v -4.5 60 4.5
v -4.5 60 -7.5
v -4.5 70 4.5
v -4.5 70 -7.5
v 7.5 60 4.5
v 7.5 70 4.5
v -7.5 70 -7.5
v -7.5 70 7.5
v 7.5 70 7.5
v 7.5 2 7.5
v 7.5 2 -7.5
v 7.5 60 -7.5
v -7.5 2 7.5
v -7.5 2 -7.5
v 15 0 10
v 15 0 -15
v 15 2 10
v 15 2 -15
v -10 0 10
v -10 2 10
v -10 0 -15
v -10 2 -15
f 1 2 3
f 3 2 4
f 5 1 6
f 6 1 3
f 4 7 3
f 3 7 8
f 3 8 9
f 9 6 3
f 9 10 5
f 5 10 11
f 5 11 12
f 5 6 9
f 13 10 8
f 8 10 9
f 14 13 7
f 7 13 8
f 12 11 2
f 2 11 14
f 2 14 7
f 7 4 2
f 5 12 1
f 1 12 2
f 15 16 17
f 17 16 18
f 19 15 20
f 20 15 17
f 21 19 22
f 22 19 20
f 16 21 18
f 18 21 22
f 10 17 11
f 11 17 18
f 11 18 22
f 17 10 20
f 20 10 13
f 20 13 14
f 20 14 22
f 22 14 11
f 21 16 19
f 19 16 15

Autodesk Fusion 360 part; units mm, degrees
sketch "スケッチ1" plane through (0, 0, 0) normal (0, 1, 0) x (1, 0, 0)
  line L0 (10, -10) -> (-10, -10)
  line L1 (-10, -10) -> (-10, 10)
  line L2 (-10, 10) -> (10, 10)
  line L3 (10, 10) -> (10, -10)
  line L4 (10, -10) -> (-10, 10) construction
  line L5 (-10, -10) -> (10, 10) construction
  dimension "d1" = 20
  dimension "d2" = 20
extrude "押し出し1" add sketch "スケッチ1" along normal blind 2
sketch "スケッチ2" plane through (0, 2, 0) normal (0, 1, 0) x (-1, 0, 0)
  line L0 (-10, -10) -> (10, -10)
  line L1 (10, -10) -> (10, 10)
  line L2 (10, 10) -> (-10, 10)
  line L3 (-10, 10) -> (-10, -10)
  line L4 (-7.5, 7.5) -> (7.5, 7.5)
  line L5 (7.5, 7.5) -> (7.5, -7.5)
  line L6 (7.5, -7.5) -> (-7.5, -7.5)
  line L7 (-7.5, -7.5) -> (-7.5, 7.5)
  line L8 (-7.5, 7.5) -> (7.5, -7.5) construction
  line L9 (7.5, 7.5) -> (-7.5, -7.5) construction
  dimension "d5" = 15
  dimension "d6" = 15
extrude "押し出し2" add sketch "スケッチ2" along normal blind 58 contours L4 L5 L6 L7
sketch "スケッチ3" plane through (0, 60, 0) normal (0, 1, 0) x (-1, 0, 0)
  line L0 (-7.5, -7.5) -> (7.5, -7.5)
  line L1 (7.5, -7.5) -> (7.5, 7.5)
  line L2 (7.5, 7.5) -> (-7.5, 7.5)
  line L3 (-7.5, 7.5) -> (-7.5, -7.5)
  line L4 (4.5, -7.5) -> (4.5, 4.5)
  line L5 (4.5, 4.5) -> (-7.5, 4.5)
  dimension "d9" = 3
  dimension "d10" = 3
extrude "押し出し3" add sketch "スケッチ3" along normal blind 10 contours L0 L1 L2 L3 L4 L5
move_face "面をオフセット1" offset 5 1 faces at (10, 0.6667, -3.3333)
move_face "面をオフセット2" offset 5 1 faces at (6.6667, 1.3333, -10)
